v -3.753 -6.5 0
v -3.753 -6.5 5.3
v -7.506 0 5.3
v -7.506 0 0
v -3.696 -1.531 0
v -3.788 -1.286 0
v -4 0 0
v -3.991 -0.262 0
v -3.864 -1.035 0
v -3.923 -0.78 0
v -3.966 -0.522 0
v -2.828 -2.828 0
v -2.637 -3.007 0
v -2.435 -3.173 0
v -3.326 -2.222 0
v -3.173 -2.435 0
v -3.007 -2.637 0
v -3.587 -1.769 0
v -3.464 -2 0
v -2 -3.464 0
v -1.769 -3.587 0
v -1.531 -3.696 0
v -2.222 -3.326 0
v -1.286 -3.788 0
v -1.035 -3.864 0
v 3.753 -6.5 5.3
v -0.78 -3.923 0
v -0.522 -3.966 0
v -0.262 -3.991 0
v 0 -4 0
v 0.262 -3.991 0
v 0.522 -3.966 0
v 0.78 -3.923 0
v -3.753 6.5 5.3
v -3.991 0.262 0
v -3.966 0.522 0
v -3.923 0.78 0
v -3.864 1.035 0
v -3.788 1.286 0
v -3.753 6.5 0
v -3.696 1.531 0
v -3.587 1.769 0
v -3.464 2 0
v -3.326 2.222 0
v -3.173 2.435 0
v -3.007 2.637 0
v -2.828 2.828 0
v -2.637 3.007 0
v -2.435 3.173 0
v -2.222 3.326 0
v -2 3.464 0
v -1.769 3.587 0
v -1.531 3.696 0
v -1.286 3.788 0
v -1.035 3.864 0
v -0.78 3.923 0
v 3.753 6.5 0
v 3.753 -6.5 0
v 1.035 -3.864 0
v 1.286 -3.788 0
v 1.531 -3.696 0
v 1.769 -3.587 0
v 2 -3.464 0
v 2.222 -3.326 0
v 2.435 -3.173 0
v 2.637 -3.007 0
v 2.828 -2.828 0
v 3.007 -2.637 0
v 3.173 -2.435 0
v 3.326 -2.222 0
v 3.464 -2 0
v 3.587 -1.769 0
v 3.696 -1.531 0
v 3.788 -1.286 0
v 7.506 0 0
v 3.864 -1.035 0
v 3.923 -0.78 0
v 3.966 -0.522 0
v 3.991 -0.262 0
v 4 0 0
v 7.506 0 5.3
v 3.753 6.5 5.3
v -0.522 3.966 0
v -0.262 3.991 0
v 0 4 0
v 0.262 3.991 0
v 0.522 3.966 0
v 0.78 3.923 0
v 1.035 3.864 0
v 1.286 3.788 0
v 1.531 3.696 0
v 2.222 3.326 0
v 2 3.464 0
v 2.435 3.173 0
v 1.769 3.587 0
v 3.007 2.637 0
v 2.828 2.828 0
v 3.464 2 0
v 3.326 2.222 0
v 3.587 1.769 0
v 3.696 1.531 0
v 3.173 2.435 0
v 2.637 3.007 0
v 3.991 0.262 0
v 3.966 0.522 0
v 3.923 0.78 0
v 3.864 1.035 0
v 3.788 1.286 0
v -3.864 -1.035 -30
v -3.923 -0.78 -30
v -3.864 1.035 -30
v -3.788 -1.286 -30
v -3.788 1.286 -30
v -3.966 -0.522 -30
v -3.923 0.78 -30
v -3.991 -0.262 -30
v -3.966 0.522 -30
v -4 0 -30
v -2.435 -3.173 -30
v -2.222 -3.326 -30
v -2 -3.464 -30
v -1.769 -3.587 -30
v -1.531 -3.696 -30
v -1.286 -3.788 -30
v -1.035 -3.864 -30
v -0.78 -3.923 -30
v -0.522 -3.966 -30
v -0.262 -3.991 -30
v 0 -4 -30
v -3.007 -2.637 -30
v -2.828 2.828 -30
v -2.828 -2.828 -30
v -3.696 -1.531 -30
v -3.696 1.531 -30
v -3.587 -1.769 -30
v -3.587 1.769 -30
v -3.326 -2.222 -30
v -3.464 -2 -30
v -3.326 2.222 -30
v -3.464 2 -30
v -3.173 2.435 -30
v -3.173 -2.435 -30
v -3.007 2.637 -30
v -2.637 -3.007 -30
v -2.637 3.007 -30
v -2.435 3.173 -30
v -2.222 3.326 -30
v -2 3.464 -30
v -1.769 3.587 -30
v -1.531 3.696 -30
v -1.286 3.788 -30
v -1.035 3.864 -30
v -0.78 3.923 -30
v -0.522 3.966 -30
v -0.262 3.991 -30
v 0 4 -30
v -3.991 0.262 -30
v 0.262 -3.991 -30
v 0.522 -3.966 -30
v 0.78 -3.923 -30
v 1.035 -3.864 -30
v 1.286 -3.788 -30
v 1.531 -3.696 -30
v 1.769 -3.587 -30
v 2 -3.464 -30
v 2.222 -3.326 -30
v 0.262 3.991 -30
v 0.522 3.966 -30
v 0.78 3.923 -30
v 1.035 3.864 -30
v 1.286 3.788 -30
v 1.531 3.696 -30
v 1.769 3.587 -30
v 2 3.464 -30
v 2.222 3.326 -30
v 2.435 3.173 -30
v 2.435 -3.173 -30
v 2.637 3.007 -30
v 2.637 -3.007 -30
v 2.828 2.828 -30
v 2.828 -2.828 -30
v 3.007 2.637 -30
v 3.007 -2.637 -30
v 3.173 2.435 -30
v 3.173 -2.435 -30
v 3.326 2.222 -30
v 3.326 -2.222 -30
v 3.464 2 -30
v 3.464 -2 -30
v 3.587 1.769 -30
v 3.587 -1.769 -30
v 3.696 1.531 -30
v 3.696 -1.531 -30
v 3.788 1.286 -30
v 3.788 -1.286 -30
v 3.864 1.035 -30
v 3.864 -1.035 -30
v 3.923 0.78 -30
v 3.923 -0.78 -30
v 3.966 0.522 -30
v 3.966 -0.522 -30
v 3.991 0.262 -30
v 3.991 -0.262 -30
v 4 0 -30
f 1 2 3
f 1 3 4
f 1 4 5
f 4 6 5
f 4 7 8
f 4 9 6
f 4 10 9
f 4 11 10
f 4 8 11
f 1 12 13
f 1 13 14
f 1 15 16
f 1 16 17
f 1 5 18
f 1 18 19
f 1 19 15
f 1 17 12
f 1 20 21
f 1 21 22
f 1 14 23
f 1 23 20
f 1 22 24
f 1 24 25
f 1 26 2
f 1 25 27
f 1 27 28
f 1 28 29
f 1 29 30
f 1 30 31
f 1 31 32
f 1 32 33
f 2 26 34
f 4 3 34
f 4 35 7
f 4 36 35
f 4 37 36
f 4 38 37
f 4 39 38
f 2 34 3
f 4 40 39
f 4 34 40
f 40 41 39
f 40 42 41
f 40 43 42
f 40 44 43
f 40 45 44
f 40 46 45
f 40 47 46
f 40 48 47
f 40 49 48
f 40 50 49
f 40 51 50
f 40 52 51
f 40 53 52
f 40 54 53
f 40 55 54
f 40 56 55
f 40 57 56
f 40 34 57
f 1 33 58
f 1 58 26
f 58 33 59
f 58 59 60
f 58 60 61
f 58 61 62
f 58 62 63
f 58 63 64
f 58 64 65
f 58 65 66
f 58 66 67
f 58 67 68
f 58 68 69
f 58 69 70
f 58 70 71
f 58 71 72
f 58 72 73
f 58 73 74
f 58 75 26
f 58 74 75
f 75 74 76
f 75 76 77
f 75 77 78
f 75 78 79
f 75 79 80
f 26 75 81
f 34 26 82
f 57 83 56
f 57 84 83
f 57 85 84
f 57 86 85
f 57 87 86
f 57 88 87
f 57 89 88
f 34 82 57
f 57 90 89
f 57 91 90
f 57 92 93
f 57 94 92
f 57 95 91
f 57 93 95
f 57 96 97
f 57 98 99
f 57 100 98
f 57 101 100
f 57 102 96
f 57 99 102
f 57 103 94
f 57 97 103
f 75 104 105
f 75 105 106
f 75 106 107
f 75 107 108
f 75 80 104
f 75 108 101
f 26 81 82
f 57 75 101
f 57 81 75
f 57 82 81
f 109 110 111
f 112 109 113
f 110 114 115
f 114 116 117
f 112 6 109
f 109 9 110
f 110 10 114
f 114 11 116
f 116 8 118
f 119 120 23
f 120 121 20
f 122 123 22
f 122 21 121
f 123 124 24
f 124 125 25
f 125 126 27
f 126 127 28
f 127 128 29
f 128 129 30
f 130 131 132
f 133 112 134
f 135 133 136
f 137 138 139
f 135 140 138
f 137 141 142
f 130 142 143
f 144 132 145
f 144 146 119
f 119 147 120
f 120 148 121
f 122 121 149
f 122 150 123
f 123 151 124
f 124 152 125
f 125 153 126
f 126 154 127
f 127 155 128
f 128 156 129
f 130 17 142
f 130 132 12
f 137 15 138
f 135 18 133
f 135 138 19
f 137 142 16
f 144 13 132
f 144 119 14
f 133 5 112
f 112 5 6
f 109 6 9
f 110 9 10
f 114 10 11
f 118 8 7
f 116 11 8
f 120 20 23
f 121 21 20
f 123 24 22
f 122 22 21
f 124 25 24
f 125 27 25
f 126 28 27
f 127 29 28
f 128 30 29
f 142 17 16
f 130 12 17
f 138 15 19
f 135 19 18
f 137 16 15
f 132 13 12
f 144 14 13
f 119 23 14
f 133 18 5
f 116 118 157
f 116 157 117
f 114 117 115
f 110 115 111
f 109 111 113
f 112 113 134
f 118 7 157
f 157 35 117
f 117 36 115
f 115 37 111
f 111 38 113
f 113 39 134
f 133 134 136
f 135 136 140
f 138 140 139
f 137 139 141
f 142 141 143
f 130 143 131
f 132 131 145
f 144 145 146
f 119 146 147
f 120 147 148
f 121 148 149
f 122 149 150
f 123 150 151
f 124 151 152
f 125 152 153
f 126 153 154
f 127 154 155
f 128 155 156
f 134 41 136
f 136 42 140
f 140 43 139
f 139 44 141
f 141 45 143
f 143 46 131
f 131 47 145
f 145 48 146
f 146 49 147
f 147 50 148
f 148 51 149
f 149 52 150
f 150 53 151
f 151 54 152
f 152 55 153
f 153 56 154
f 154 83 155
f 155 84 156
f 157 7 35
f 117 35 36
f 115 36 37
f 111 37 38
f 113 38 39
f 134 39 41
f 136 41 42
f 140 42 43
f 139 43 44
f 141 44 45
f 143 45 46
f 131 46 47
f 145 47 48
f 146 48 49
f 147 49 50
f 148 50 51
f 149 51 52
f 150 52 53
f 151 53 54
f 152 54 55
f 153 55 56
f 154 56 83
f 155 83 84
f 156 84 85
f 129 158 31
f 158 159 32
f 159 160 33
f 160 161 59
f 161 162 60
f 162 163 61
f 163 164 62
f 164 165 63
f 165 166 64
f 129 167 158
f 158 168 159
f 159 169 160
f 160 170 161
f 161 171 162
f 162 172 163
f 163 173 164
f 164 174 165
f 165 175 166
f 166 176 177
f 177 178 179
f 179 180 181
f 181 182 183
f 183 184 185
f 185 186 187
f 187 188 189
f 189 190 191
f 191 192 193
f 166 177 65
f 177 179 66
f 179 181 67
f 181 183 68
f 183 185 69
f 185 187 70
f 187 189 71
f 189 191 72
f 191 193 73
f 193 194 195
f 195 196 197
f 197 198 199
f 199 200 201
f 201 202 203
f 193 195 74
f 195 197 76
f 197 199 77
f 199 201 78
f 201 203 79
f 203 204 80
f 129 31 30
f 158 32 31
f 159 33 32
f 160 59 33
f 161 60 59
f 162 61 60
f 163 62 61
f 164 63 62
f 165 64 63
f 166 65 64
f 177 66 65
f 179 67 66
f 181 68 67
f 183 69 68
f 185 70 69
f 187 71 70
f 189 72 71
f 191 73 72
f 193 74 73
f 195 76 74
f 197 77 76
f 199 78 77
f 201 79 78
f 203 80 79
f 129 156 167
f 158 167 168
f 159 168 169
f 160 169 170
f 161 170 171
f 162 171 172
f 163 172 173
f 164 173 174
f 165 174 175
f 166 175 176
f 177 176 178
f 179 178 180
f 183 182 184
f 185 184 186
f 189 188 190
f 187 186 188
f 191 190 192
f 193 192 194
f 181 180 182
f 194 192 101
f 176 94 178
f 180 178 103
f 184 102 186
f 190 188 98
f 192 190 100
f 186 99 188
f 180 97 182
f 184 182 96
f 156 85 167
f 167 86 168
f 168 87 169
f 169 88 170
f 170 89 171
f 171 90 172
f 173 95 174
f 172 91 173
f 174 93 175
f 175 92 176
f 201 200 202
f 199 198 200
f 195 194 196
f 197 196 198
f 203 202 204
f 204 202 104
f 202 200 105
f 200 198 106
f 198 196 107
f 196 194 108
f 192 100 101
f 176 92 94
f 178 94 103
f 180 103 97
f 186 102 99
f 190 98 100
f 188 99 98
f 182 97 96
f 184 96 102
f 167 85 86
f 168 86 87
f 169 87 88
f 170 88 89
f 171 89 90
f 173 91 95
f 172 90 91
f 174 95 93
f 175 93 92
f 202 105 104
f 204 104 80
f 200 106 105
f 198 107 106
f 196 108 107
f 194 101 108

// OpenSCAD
// M8 六角ボルト（ねじ山省略・円柱シャンク）
// 頭部底面が z=0、頭部は +Z 側、シャンクは -Z 側へ伸びる

// ---- パラメータ ----
head_af   = 13;    // 頭部 対辺距離 (across-flats) [mm]
head_h    = 5.3;   // 頭部 高さ [mm]
shank_d   = 8;     // シャンク 直径 [mm]
shank_len = 30;    // シャンク 長さ [mm]

// 対辺距離 -> 六角形の外接円直径
head_d = head_af / cos(30);

$fn = 96;

// ---- 頭部（六角柱） ----
module hex_head() {
    // $fn=6 の cylinder は頂点が外接円上に乗る六角柱になる
    cylinder(d = head_d, h = head_h, $fn = 6);
}

// ---- シャンク（円柱） ----
module shank() {
    // 頭部内部にわずかに食い込ませて確実に結合させる（外形寸法は変わらない）
    eps = 0.01;
    translate([0, 0, -shank_len])
        cylinder(d = shank_d, h = shank_len + eps);
}

// ---- ボルト全体 ----
module hex_bolt() {
    union() {
        hex_head();
        shank();
    }
}

hex_bolt();
